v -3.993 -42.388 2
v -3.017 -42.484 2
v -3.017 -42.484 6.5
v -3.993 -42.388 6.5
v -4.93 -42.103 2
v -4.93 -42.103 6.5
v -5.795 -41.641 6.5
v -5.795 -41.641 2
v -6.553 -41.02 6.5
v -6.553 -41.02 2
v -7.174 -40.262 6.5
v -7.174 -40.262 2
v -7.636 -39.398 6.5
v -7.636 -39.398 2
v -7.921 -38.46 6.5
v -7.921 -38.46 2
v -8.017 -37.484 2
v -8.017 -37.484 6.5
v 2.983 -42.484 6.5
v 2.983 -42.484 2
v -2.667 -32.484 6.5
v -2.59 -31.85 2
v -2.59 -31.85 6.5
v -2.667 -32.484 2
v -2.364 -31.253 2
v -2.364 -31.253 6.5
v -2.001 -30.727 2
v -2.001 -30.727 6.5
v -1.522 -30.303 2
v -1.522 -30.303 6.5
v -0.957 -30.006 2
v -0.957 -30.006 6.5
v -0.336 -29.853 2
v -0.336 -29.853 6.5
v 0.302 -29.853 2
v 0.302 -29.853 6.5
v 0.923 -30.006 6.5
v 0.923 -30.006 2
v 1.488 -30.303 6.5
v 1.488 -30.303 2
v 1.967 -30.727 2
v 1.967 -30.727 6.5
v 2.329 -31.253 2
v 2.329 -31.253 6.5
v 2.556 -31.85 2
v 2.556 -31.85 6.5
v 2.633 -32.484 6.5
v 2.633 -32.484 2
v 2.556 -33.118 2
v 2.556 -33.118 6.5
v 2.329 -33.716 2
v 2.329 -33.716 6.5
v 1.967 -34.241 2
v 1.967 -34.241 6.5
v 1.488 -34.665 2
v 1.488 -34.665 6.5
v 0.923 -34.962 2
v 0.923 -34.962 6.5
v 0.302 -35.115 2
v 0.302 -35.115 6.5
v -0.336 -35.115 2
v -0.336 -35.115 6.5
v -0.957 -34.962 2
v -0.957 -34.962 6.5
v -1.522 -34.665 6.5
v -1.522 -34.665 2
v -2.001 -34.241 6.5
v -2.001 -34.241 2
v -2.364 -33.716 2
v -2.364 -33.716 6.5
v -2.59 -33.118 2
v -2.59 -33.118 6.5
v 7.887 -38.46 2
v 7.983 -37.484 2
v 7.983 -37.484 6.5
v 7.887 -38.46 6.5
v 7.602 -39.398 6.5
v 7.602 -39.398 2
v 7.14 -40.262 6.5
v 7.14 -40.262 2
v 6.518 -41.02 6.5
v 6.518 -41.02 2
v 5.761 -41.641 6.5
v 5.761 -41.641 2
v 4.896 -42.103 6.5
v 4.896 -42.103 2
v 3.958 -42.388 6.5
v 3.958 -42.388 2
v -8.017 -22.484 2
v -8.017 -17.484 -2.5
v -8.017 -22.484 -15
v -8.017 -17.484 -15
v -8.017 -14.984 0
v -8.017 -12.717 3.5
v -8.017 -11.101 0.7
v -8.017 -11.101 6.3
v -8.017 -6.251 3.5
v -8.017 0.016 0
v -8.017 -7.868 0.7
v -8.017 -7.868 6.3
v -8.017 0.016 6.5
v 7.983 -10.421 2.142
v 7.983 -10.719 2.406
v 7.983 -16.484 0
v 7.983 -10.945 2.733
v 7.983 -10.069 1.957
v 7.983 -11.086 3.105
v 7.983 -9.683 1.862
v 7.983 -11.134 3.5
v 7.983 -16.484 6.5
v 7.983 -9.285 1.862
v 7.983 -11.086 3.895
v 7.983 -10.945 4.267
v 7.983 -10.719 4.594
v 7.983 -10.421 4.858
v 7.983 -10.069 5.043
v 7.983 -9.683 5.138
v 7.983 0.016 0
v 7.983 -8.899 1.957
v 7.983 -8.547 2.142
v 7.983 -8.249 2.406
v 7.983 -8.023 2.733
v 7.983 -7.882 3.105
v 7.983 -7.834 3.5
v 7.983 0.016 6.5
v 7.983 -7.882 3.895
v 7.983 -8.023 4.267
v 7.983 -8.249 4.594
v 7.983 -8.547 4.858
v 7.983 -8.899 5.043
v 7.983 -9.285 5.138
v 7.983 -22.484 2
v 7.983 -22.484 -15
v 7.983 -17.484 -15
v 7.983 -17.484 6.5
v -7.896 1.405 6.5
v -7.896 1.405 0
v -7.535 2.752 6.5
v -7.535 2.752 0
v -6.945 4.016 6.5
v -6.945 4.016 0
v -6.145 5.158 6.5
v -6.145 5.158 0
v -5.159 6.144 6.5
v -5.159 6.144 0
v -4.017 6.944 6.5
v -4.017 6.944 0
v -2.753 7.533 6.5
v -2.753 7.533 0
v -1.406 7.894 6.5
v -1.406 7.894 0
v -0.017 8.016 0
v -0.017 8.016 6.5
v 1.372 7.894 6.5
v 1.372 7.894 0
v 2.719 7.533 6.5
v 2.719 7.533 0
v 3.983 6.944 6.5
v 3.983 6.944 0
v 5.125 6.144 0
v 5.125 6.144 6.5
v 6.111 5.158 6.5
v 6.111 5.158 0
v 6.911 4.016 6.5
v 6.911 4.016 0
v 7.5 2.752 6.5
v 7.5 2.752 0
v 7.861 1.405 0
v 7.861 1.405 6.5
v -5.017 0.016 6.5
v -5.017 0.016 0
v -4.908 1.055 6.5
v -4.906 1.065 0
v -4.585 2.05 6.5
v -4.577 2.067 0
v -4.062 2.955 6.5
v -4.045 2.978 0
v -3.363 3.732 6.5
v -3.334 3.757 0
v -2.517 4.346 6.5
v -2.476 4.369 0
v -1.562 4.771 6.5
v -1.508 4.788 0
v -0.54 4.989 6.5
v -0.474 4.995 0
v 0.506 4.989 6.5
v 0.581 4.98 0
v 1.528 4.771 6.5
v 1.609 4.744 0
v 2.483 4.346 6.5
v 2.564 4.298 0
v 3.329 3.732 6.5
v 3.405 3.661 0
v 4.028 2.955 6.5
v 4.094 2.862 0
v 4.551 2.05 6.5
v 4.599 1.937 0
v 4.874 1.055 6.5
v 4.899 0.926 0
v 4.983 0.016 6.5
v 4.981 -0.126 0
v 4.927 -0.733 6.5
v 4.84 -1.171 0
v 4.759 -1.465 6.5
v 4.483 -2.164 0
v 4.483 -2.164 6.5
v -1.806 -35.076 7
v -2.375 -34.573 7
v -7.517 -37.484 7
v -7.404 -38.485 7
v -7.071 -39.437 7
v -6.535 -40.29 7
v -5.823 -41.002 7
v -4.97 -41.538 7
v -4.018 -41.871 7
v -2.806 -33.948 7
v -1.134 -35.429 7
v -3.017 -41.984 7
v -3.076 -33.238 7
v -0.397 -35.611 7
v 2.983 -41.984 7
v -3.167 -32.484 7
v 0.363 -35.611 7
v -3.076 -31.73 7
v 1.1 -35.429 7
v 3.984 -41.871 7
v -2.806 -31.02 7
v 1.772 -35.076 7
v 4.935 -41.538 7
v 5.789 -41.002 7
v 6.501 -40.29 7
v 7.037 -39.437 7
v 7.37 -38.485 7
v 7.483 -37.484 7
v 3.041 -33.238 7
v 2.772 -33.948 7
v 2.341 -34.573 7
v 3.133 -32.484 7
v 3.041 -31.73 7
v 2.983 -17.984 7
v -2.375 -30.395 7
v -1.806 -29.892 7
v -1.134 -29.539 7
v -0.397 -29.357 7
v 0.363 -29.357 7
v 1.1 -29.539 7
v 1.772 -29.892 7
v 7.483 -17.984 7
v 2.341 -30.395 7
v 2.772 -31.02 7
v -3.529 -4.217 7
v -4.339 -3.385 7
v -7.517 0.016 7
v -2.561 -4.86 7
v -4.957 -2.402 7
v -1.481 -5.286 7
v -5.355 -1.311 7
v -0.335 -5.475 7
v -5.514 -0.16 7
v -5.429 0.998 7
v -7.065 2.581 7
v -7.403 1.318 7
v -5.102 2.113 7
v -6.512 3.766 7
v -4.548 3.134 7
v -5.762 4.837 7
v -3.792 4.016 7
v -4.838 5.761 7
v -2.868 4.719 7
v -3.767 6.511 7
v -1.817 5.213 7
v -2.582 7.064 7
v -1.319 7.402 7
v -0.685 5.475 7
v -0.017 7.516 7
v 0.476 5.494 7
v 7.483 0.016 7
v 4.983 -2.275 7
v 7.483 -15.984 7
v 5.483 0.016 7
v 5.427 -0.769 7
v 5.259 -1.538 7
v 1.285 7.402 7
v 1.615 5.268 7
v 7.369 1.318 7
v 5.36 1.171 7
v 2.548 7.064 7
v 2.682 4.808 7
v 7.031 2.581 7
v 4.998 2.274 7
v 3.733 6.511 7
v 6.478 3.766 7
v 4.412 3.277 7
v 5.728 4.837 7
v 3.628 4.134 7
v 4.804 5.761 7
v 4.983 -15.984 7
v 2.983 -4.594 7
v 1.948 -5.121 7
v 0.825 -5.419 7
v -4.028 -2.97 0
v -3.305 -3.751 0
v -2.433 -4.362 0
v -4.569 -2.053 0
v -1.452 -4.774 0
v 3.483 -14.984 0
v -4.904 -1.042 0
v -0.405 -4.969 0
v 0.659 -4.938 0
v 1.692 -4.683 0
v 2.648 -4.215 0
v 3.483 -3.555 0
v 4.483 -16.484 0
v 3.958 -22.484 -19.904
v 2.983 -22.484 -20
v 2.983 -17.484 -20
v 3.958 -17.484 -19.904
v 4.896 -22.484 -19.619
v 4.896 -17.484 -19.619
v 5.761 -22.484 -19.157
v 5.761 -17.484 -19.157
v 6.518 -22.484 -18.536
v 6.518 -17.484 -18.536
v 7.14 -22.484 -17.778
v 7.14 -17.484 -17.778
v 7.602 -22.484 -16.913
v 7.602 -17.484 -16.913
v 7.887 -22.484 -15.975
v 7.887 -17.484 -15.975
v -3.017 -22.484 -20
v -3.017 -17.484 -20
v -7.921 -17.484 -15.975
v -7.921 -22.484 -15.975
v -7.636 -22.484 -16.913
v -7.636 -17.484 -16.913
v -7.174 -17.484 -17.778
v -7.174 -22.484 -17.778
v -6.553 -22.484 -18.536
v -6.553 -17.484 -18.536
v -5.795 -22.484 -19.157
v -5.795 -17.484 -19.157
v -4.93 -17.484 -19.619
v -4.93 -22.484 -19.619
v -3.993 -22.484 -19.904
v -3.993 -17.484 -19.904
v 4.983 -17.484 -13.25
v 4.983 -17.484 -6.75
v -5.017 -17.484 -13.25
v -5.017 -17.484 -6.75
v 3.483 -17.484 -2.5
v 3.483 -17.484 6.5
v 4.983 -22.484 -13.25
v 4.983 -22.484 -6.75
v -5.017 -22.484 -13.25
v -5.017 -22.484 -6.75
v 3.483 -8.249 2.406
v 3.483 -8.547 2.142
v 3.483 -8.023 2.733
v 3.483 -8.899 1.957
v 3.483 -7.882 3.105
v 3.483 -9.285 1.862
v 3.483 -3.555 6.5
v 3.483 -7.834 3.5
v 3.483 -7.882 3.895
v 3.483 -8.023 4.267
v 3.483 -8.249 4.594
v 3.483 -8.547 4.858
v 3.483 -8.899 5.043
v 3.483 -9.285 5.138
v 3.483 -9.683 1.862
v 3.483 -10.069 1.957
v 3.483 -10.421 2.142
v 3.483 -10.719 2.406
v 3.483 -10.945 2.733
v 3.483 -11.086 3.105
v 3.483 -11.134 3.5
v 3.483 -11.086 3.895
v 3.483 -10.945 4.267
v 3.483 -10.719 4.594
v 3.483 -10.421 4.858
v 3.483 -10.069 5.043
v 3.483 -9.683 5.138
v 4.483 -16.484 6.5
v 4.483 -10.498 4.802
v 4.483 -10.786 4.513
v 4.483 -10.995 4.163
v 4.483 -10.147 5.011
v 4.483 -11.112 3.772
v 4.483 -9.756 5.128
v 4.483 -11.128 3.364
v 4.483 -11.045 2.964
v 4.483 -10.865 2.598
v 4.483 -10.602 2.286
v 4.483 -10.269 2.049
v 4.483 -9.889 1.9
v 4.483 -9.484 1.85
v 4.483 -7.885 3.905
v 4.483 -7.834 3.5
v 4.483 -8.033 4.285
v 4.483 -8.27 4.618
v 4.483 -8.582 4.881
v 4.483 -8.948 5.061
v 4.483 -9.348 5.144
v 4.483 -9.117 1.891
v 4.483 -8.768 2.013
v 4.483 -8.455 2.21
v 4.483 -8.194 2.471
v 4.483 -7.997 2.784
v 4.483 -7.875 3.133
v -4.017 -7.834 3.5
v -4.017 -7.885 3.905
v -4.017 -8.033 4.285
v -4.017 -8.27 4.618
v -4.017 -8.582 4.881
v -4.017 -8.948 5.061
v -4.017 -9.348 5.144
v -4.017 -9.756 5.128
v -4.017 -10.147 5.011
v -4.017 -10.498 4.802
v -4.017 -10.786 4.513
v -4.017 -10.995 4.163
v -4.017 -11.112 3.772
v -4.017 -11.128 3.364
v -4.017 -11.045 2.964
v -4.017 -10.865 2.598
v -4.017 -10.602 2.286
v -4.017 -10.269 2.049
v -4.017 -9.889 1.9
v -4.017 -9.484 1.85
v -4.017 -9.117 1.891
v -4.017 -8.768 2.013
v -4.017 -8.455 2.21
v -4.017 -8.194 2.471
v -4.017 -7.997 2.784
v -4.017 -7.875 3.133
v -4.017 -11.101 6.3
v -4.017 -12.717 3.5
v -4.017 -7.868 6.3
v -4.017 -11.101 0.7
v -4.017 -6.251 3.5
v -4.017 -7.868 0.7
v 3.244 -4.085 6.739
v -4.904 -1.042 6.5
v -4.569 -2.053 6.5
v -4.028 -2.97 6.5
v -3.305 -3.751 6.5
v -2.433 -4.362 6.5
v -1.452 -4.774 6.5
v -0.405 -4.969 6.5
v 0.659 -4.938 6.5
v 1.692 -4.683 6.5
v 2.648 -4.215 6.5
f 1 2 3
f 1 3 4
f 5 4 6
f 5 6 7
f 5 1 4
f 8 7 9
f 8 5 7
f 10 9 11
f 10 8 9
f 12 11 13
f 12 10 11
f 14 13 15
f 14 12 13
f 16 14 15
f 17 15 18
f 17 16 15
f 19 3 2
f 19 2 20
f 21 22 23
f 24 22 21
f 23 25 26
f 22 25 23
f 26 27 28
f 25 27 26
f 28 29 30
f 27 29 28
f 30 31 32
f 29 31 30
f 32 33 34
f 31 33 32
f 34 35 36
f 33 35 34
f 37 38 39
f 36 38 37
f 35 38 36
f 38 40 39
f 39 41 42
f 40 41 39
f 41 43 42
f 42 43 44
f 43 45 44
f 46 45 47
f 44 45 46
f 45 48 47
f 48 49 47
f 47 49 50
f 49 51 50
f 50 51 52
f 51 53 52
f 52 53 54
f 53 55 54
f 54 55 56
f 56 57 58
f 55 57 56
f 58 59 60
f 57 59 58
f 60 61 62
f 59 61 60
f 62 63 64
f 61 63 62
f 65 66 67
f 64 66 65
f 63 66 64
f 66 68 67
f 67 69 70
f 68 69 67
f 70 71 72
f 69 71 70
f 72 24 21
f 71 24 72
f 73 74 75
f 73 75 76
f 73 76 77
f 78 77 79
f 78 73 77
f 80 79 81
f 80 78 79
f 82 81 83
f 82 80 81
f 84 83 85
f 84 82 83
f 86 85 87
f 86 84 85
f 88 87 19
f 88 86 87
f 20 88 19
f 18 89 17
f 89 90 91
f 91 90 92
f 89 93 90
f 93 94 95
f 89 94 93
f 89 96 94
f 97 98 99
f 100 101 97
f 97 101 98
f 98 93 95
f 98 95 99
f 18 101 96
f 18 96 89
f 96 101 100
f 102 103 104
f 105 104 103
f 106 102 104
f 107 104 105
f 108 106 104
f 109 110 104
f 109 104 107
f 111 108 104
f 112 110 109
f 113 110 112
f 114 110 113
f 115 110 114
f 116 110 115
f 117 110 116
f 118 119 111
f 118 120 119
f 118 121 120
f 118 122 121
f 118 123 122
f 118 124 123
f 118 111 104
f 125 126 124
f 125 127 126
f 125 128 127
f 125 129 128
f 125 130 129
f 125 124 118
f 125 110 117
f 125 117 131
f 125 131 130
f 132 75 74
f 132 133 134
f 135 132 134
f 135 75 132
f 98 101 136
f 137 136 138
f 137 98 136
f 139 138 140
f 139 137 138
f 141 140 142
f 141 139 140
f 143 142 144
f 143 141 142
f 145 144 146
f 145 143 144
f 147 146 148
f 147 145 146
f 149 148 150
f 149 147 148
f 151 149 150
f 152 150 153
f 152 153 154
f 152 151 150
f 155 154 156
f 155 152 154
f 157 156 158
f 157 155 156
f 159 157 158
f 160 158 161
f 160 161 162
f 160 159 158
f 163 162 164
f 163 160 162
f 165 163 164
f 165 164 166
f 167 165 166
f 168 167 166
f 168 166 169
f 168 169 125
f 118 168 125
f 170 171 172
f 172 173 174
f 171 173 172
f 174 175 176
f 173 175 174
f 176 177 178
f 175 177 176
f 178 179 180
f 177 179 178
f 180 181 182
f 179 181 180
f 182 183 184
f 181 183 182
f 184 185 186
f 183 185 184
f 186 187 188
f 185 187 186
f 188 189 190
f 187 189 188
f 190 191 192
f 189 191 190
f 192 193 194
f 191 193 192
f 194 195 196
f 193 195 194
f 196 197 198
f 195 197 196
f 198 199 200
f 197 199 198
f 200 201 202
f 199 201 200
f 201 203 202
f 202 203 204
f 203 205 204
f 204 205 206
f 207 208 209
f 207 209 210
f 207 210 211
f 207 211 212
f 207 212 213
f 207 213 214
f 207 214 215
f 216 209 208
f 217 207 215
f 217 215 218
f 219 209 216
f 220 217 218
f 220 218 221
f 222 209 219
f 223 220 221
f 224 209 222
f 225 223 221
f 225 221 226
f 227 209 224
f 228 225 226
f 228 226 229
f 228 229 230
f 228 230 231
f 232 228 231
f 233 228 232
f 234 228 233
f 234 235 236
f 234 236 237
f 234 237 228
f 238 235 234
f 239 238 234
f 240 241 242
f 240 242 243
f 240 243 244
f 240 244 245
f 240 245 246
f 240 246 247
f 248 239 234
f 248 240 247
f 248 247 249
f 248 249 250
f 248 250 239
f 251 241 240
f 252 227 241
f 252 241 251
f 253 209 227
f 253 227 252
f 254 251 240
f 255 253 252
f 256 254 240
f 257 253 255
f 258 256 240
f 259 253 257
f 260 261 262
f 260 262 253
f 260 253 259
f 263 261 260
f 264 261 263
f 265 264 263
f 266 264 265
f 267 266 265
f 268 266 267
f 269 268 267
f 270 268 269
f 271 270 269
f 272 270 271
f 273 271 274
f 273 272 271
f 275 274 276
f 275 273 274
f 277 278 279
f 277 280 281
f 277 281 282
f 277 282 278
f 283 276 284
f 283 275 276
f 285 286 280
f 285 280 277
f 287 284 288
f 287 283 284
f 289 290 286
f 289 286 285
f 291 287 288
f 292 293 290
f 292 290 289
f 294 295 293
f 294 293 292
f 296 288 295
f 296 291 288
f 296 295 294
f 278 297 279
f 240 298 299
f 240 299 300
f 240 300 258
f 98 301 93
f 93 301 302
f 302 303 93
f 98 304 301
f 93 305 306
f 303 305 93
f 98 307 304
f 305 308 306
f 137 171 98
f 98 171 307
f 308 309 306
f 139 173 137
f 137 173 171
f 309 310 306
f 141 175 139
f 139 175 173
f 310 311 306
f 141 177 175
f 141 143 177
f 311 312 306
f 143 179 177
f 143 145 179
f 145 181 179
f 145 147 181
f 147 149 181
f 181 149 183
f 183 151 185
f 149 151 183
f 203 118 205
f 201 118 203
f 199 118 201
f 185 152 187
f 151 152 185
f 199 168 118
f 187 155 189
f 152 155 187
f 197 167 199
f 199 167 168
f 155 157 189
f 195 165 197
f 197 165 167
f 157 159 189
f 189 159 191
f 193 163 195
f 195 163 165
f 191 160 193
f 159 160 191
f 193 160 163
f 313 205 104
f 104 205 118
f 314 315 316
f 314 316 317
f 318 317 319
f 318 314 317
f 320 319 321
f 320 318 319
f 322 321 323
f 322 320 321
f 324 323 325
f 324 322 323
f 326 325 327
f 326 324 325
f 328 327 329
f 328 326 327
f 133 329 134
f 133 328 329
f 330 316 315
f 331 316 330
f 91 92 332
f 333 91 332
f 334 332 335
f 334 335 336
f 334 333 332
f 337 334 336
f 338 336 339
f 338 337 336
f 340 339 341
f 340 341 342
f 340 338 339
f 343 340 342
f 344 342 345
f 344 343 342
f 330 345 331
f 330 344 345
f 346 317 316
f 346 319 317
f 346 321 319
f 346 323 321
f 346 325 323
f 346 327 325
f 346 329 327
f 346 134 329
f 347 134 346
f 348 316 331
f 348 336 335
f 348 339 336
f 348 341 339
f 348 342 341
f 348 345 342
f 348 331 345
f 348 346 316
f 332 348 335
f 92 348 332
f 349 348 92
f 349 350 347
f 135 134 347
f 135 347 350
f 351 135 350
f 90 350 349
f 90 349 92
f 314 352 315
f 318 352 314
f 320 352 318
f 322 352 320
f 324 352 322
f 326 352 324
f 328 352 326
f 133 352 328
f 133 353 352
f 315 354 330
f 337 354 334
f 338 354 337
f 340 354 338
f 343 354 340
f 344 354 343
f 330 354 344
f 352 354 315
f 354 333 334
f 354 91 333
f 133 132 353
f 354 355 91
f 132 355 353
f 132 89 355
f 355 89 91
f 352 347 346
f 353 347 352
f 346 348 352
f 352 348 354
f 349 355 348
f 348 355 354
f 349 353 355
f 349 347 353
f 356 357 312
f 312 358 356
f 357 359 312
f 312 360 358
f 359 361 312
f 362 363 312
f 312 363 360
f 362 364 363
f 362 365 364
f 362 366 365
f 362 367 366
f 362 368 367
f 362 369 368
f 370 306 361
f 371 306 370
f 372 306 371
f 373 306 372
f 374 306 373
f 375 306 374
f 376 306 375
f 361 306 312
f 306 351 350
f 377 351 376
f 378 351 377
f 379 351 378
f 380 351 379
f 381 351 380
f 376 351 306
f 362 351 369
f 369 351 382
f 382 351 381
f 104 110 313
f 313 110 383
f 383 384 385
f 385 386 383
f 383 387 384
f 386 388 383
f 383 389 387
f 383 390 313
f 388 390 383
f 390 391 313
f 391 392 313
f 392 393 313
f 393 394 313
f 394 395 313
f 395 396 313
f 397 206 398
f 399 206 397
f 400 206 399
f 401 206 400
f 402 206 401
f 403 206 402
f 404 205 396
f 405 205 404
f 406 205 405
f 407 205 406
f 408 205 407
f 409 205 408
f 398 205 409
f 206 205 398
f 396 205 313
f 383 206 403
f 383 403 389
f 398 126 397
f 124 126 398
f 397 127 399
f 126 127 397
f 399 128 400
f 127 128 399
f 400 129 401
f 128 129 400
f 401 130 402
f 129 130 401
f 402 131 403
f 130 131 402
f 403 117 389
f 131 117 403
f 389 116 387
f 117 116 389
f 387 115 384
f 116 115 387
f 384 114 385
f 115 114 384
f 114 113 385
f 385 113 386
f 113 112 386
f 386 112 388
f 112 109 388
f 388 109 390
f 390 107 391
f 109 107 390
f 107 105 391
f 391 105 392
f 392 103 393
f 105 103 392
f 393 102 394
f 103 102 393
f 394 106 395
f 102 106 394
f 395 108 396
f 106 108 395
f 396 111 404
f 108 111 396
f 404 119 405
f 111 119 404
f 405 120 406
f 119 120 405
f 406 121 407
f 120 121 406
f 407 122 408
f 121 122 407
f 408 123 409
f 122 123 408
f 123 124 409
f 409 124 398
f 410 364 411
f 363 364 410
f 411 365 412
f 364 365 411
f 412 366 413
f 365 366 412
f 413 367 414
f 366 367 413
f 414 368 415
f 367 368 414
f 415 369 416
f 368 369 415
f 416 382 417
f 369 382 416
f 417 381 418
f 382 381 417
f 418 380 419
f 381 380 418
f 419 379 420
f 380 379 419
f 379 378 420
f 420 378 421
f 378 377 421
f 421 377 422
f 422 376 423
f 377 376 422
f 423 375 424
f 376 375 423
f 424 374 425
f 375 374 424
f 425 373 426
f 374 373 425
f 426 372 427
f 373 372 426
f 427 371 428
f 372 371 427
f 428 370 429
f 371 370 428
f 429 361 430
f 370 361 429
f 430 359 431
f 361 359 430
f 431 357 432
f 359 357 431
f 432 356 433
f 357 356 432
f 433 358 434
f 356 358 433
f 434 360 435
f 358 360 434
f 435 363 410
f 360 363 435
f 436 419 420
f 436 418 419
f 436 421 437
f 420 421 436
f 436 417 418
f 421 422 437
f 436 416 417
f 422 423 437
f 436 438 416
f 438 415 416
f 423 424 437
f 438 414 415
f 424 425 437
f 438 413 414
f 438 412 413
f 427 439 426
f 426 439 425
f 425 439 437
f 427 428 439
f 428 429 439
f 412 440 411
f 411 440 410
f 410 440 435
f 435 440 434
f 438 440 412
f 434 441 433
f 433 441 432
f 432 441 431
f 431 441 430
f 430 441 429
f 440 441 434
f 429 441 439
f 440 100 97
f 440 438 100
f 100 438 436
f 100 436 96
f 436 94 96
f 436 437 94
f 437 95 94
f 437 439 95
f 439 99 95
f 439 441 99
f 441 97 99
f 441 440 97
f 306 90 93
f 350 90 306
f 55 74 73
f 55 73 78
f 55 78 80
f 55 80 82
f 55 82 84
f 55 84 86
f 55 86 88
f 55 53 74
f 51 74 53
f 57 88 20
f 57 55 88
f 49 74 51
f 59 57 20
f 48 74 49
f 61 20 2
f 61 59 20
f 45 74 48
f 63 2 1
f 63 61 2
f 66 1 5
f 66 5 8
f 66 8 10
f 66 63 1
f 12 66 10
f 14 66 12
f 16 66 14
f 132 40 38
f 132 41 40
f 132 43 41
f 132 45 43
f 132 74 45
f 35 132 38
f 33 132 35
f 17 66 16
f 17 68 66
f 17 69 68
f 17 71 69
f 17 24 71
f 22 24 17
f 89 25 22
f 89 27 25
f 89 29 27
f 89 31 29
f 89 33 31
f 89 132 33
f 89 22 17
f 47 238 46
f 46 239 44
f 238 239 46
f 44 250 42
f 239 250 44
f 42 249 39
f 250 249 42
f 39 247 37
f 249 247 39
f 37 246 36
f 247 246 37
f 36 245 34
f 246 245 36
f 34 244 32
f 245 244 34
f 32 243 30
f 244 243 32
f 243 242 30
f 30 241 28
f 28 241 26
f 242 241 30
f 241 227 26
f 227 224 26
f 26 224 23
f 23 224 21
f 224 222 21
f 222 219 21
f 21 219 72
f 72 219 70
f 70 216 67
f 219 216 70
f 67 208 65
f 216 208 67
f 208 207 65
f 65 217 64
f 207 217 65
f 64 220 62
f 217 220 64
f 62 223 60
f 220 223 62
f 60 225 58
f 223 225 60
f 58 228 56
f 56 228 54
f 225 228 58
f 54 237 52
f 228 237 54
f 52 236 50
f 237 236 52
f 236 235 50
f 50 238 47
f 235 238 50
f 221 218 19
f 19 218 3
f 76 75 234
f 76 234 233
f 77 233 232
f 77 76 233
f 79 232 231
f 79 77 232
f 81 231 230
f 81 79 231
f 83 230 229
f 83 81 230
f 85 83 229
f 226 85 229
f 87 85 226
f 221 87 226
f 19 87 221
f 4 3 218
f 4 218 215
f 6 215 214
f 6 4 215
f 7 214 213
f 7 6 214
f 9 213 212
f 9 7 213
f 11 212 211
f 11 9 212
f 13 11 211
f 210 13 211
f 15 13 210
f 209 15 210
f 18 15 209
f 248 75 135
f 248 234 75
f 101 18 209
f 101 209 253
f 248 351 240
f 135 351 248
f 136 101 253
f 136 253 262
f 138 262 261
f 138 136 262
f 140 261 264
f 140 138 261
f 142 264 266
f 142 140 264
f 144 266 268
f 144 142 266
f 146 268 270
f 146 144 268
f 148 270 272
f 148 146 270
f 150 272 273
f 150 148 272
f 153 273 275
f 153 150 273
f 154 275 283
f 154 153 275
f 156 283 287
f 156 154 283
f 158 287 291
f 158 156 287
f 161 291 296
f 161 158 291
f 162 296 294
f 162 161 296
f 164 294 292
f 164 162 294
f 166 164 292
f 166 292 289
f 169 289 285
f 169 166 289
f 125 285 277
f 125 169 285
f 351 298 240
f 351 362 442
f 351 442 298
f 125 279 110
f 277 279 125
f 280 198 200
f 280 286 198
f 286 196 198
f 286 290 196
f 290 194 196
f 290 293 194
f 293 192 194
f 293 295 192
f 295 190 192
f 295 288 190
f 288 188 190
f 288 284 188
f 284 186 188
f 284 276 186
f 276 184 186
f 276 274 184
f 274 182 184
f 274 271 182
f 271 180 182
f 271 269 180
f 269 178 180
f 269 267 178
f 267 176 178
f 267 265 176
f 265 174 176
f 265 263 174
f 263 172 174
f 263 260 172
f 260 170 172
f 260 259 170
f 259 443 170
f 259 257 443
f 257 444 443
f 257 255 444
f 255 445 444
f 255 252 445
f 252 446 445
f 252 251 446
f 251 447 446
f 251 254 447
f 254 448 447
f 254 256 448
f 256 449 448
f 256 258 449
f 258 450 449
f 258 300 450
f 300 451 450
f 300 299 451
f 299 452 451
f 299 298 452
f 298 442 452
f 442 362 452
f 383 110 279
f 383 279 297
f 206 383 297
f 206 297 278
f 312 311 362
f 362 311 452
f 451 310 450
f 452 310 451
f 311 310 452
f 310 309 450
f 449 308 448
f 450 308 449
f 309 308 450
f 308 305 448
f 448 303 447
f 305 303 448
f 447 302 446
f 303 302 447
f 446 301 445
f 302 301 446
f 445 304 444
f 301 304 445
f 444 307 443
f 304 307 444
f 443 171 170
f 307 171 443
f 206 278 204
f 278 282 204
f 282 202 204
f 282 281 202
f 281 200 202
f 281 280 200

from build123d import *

# Parameters (mm, degrees)
ESBO_O1_R                = 5
ESBO_O1_R_2              = 2.65
RESSALTO_EXTRUS_O3_DEPTH = 7
RESSALTO_EXTRUS_O4_START = -20
ESBO_O3_W                = 10
ESBO_O3_H                = 6.5
RESSALTO_EXTRUS_O4_DEPTH = 5
CORTE_EXTRUS_O2_DEPTH    = 8
ESBO_O6_R                = 1.65
CORTE_EXTRUS_O3_DEPTH    = 17
CORTE_EXTRUS_O4_DEPTH    = 4
CHANFRO1_SIZE            = 2.5
CORTE_EXTRUS_O1_DEPTH    = 2
CHANFRO2_SIZE            = 0.5


with BuildPart() as part:
    # Esboço1 → Ressalto-extrusão3 (new body)
    with BuildSketch(Plane.XY):
        with BuildLine():
            Line((7.982953463, 0.015906926), (7.982953463, -37.484093074))
            ThreePointArc((7.982953463, -37.484093074), (6.518487369, -41.01962698), (2.982953463, -42.484093074))
            Line((2.982953463, -42.484093074), (-3.017046537, -42.484093074))
            ThreePointArc((-3.017046537, -42.484093074), (-6.552580443, -41.01962698), (-8.017046537, -37.484093074))
            Line((-8.017046537, -37.484093074), (-8.017046537, 0.015906926))
            ThreePointArc((-8.017046537, 0.015906926), (-0.017046537, 8.015906926), (7.982953463, 0.015906926))
        make_face()
        with Locations((-0.017046537, 0.015906926)):
            Circle(ESBO_O1_R, mode=Mode.SUBTRACT)
        with Locations((-0.017046537, -32.484093074)):
            Circle(ESBO_O1_R_2, mode=Mode.SUBTRACT)
    extrude(amount=RESSALTO_EXTRUS_O3_DEPTH)

    # Esboço3 → Ressalto-extrusão4 (add)
    with BuildSketch(Plane.XZ.offset(42.484093074).offset(RESSALTO_EXTRUS_O4_START)):
        with BuildLine():
            Line((7.982953463, 0), (-8.017046537, 0))
            Line((-8.017046537, 0), (-8.017046537, -15))
            ThreePointArc((-8.017046537, -15), (-6.552580443, -18.535533906), (-3.017046537, -20))
            Line((-3.017046537, -20), (2.982953463, -20))
            ThreePointArc((2.982953463, -20), (6.518487369, -18.535533906), (7.982953463, -15))
            Line((7.982953463, -15), (7.982953463, 0))
        make_face()
        with Locations((-0.017046537, -10)):
            Rectangle(ESBO_O3_W, ESBO_O3_H, mode=Mode.SUBTRACT)
    extrude(amount=-RESSALTO_EXTRUS_O4_DEPTH)

    # Esboço5 → Corte-extrusão2 (cut, through all)
    with BuildSketch(Plane(origin=(0, 0, 0), x_dir=(-1, 0, 0), z_dir=(0, 0, -1))):
        with BuildLine():
            Line((-4.482953463, -2.163542545), (-4.482953463, -16.484093074))
            Line((-4.482953463, -16.484093074), (-7.982953463, -16.484093074))
            Line((-7.982953463, -16.484093074), (-7.982953463, -17.484093074))
            Line((-7.982953463, -17.484093074), (-3.482953463, -17.484093074))
            Line((-3.482953463, -17.484093074), (-3.482953463, -3.554807288))
            ThreePointArc((-3.482953463, -3.554807288), (-4.04299095, -2.902328089), (-4.482953463, -2.163542545))
        make_face()
    extrude(amount=-CORTE_EXTRUS_O2_DEPTH, mode=Mode.SUBTRACT)

    # Esboço6 → Corte-extrusão3 (cut, through all)
    with BuildSketch(Plane(origin=(7.982953463, 0, 0), x_dir=(0, 0, -1), z_dir=(1, 0, 0))):
        with Locations((-3.5, -9.484093074)):
            Circle(ESBO_O6_R)
    extrude(amount=-CORTE_EXTRUS_O3_DEPTH, mode=Mode.SUBTRACT)

    # Esboço7 → Corte-extrusão4 (cut)
    with BuildSketch(Plane(origin=(-8.017046537, 0, 0), x_dir=(0, 0, -1), z_dir=(1, 0, 0))):
        Polygon((-6.3, -7.86751232), (-6.3, -11.100673827), (-3.5, -12.717254581), (-0.7, -11.100673827), (-0.7, -7.86751232), (-3.5, -6.250931566), align=None)
    extrude(amount=CORTE_EXTRUS_O4_DEPTH, mode=Mode.SUBTRACT)

    # Chanfro1
    chanfro1_edges = [part.edges().sort_by_distance(p)[0] for p in [
        (-2.267046537, -17.484093074, 0),
    ]]
    chamfer(chanfro1_edges, length=CHANFRO1_SIZE)

    # Esboço4 → Corte-extrusão1 (cut)
    with BuildSketch(Plane(origin=(0, 0, 0), x_dir=(-1, 0, 0), z_dir=(0, 0, -1))):
        with BuildLine():
            Line((-2.982953463, -42.484093074), (3.017046537, -42.484093074))
            ThreePointArc((3.017046537, -42.484093074), (6.552580443, -41.01962698), (8.017046537, -37.484093074))
            Line((8.017046537, -37.484093074), (8.017046537, -22.484093074))
            Line((8.017046537, -22.484093074), (-7.982953463, -22.484093074))
            Line((-7.982953463, -22.484093074), (-7.982953463, -37.484093074))
            ThreePointArc((-7.982953463, -37.484093074), (-6.518487369, -41.01962698), (-2.982953463, -42.484093074))
        make_face()
    extrude(amount=-CORTE_EXTRUS_O1_DEPTH, mode=Mode.SUBTRACT)

    # Chanfro2
    chanfro2_edges = [part.edges().sort_by_distance(p)[0] for p in [
        (-2.667046537, -32.484093074, 7),
        (4.482953463, -9.323817809, 7),
        (-4.077084024, 2.934141942, 7),
        (3.482953463, -10.519450181, 7),
        (5.732953463, -17.484093074, 7),
        (7.982953463, -27.484093074, 7),
        (6.518487369, -41.01962698, 7),
        (-0.017046537, -42.484093074, 7),
        (-6.552580443, -41.01962698, 7),
        (-8.017046537, -18.734093074, 7),
        (-0.017046537, 8.015906926, 7),
        (6.232953463, -16.484093074, 7),
    ]]
    chamfer(chanfro2_edges, length=CHANFRO2_SIZE)


solid = part.part
